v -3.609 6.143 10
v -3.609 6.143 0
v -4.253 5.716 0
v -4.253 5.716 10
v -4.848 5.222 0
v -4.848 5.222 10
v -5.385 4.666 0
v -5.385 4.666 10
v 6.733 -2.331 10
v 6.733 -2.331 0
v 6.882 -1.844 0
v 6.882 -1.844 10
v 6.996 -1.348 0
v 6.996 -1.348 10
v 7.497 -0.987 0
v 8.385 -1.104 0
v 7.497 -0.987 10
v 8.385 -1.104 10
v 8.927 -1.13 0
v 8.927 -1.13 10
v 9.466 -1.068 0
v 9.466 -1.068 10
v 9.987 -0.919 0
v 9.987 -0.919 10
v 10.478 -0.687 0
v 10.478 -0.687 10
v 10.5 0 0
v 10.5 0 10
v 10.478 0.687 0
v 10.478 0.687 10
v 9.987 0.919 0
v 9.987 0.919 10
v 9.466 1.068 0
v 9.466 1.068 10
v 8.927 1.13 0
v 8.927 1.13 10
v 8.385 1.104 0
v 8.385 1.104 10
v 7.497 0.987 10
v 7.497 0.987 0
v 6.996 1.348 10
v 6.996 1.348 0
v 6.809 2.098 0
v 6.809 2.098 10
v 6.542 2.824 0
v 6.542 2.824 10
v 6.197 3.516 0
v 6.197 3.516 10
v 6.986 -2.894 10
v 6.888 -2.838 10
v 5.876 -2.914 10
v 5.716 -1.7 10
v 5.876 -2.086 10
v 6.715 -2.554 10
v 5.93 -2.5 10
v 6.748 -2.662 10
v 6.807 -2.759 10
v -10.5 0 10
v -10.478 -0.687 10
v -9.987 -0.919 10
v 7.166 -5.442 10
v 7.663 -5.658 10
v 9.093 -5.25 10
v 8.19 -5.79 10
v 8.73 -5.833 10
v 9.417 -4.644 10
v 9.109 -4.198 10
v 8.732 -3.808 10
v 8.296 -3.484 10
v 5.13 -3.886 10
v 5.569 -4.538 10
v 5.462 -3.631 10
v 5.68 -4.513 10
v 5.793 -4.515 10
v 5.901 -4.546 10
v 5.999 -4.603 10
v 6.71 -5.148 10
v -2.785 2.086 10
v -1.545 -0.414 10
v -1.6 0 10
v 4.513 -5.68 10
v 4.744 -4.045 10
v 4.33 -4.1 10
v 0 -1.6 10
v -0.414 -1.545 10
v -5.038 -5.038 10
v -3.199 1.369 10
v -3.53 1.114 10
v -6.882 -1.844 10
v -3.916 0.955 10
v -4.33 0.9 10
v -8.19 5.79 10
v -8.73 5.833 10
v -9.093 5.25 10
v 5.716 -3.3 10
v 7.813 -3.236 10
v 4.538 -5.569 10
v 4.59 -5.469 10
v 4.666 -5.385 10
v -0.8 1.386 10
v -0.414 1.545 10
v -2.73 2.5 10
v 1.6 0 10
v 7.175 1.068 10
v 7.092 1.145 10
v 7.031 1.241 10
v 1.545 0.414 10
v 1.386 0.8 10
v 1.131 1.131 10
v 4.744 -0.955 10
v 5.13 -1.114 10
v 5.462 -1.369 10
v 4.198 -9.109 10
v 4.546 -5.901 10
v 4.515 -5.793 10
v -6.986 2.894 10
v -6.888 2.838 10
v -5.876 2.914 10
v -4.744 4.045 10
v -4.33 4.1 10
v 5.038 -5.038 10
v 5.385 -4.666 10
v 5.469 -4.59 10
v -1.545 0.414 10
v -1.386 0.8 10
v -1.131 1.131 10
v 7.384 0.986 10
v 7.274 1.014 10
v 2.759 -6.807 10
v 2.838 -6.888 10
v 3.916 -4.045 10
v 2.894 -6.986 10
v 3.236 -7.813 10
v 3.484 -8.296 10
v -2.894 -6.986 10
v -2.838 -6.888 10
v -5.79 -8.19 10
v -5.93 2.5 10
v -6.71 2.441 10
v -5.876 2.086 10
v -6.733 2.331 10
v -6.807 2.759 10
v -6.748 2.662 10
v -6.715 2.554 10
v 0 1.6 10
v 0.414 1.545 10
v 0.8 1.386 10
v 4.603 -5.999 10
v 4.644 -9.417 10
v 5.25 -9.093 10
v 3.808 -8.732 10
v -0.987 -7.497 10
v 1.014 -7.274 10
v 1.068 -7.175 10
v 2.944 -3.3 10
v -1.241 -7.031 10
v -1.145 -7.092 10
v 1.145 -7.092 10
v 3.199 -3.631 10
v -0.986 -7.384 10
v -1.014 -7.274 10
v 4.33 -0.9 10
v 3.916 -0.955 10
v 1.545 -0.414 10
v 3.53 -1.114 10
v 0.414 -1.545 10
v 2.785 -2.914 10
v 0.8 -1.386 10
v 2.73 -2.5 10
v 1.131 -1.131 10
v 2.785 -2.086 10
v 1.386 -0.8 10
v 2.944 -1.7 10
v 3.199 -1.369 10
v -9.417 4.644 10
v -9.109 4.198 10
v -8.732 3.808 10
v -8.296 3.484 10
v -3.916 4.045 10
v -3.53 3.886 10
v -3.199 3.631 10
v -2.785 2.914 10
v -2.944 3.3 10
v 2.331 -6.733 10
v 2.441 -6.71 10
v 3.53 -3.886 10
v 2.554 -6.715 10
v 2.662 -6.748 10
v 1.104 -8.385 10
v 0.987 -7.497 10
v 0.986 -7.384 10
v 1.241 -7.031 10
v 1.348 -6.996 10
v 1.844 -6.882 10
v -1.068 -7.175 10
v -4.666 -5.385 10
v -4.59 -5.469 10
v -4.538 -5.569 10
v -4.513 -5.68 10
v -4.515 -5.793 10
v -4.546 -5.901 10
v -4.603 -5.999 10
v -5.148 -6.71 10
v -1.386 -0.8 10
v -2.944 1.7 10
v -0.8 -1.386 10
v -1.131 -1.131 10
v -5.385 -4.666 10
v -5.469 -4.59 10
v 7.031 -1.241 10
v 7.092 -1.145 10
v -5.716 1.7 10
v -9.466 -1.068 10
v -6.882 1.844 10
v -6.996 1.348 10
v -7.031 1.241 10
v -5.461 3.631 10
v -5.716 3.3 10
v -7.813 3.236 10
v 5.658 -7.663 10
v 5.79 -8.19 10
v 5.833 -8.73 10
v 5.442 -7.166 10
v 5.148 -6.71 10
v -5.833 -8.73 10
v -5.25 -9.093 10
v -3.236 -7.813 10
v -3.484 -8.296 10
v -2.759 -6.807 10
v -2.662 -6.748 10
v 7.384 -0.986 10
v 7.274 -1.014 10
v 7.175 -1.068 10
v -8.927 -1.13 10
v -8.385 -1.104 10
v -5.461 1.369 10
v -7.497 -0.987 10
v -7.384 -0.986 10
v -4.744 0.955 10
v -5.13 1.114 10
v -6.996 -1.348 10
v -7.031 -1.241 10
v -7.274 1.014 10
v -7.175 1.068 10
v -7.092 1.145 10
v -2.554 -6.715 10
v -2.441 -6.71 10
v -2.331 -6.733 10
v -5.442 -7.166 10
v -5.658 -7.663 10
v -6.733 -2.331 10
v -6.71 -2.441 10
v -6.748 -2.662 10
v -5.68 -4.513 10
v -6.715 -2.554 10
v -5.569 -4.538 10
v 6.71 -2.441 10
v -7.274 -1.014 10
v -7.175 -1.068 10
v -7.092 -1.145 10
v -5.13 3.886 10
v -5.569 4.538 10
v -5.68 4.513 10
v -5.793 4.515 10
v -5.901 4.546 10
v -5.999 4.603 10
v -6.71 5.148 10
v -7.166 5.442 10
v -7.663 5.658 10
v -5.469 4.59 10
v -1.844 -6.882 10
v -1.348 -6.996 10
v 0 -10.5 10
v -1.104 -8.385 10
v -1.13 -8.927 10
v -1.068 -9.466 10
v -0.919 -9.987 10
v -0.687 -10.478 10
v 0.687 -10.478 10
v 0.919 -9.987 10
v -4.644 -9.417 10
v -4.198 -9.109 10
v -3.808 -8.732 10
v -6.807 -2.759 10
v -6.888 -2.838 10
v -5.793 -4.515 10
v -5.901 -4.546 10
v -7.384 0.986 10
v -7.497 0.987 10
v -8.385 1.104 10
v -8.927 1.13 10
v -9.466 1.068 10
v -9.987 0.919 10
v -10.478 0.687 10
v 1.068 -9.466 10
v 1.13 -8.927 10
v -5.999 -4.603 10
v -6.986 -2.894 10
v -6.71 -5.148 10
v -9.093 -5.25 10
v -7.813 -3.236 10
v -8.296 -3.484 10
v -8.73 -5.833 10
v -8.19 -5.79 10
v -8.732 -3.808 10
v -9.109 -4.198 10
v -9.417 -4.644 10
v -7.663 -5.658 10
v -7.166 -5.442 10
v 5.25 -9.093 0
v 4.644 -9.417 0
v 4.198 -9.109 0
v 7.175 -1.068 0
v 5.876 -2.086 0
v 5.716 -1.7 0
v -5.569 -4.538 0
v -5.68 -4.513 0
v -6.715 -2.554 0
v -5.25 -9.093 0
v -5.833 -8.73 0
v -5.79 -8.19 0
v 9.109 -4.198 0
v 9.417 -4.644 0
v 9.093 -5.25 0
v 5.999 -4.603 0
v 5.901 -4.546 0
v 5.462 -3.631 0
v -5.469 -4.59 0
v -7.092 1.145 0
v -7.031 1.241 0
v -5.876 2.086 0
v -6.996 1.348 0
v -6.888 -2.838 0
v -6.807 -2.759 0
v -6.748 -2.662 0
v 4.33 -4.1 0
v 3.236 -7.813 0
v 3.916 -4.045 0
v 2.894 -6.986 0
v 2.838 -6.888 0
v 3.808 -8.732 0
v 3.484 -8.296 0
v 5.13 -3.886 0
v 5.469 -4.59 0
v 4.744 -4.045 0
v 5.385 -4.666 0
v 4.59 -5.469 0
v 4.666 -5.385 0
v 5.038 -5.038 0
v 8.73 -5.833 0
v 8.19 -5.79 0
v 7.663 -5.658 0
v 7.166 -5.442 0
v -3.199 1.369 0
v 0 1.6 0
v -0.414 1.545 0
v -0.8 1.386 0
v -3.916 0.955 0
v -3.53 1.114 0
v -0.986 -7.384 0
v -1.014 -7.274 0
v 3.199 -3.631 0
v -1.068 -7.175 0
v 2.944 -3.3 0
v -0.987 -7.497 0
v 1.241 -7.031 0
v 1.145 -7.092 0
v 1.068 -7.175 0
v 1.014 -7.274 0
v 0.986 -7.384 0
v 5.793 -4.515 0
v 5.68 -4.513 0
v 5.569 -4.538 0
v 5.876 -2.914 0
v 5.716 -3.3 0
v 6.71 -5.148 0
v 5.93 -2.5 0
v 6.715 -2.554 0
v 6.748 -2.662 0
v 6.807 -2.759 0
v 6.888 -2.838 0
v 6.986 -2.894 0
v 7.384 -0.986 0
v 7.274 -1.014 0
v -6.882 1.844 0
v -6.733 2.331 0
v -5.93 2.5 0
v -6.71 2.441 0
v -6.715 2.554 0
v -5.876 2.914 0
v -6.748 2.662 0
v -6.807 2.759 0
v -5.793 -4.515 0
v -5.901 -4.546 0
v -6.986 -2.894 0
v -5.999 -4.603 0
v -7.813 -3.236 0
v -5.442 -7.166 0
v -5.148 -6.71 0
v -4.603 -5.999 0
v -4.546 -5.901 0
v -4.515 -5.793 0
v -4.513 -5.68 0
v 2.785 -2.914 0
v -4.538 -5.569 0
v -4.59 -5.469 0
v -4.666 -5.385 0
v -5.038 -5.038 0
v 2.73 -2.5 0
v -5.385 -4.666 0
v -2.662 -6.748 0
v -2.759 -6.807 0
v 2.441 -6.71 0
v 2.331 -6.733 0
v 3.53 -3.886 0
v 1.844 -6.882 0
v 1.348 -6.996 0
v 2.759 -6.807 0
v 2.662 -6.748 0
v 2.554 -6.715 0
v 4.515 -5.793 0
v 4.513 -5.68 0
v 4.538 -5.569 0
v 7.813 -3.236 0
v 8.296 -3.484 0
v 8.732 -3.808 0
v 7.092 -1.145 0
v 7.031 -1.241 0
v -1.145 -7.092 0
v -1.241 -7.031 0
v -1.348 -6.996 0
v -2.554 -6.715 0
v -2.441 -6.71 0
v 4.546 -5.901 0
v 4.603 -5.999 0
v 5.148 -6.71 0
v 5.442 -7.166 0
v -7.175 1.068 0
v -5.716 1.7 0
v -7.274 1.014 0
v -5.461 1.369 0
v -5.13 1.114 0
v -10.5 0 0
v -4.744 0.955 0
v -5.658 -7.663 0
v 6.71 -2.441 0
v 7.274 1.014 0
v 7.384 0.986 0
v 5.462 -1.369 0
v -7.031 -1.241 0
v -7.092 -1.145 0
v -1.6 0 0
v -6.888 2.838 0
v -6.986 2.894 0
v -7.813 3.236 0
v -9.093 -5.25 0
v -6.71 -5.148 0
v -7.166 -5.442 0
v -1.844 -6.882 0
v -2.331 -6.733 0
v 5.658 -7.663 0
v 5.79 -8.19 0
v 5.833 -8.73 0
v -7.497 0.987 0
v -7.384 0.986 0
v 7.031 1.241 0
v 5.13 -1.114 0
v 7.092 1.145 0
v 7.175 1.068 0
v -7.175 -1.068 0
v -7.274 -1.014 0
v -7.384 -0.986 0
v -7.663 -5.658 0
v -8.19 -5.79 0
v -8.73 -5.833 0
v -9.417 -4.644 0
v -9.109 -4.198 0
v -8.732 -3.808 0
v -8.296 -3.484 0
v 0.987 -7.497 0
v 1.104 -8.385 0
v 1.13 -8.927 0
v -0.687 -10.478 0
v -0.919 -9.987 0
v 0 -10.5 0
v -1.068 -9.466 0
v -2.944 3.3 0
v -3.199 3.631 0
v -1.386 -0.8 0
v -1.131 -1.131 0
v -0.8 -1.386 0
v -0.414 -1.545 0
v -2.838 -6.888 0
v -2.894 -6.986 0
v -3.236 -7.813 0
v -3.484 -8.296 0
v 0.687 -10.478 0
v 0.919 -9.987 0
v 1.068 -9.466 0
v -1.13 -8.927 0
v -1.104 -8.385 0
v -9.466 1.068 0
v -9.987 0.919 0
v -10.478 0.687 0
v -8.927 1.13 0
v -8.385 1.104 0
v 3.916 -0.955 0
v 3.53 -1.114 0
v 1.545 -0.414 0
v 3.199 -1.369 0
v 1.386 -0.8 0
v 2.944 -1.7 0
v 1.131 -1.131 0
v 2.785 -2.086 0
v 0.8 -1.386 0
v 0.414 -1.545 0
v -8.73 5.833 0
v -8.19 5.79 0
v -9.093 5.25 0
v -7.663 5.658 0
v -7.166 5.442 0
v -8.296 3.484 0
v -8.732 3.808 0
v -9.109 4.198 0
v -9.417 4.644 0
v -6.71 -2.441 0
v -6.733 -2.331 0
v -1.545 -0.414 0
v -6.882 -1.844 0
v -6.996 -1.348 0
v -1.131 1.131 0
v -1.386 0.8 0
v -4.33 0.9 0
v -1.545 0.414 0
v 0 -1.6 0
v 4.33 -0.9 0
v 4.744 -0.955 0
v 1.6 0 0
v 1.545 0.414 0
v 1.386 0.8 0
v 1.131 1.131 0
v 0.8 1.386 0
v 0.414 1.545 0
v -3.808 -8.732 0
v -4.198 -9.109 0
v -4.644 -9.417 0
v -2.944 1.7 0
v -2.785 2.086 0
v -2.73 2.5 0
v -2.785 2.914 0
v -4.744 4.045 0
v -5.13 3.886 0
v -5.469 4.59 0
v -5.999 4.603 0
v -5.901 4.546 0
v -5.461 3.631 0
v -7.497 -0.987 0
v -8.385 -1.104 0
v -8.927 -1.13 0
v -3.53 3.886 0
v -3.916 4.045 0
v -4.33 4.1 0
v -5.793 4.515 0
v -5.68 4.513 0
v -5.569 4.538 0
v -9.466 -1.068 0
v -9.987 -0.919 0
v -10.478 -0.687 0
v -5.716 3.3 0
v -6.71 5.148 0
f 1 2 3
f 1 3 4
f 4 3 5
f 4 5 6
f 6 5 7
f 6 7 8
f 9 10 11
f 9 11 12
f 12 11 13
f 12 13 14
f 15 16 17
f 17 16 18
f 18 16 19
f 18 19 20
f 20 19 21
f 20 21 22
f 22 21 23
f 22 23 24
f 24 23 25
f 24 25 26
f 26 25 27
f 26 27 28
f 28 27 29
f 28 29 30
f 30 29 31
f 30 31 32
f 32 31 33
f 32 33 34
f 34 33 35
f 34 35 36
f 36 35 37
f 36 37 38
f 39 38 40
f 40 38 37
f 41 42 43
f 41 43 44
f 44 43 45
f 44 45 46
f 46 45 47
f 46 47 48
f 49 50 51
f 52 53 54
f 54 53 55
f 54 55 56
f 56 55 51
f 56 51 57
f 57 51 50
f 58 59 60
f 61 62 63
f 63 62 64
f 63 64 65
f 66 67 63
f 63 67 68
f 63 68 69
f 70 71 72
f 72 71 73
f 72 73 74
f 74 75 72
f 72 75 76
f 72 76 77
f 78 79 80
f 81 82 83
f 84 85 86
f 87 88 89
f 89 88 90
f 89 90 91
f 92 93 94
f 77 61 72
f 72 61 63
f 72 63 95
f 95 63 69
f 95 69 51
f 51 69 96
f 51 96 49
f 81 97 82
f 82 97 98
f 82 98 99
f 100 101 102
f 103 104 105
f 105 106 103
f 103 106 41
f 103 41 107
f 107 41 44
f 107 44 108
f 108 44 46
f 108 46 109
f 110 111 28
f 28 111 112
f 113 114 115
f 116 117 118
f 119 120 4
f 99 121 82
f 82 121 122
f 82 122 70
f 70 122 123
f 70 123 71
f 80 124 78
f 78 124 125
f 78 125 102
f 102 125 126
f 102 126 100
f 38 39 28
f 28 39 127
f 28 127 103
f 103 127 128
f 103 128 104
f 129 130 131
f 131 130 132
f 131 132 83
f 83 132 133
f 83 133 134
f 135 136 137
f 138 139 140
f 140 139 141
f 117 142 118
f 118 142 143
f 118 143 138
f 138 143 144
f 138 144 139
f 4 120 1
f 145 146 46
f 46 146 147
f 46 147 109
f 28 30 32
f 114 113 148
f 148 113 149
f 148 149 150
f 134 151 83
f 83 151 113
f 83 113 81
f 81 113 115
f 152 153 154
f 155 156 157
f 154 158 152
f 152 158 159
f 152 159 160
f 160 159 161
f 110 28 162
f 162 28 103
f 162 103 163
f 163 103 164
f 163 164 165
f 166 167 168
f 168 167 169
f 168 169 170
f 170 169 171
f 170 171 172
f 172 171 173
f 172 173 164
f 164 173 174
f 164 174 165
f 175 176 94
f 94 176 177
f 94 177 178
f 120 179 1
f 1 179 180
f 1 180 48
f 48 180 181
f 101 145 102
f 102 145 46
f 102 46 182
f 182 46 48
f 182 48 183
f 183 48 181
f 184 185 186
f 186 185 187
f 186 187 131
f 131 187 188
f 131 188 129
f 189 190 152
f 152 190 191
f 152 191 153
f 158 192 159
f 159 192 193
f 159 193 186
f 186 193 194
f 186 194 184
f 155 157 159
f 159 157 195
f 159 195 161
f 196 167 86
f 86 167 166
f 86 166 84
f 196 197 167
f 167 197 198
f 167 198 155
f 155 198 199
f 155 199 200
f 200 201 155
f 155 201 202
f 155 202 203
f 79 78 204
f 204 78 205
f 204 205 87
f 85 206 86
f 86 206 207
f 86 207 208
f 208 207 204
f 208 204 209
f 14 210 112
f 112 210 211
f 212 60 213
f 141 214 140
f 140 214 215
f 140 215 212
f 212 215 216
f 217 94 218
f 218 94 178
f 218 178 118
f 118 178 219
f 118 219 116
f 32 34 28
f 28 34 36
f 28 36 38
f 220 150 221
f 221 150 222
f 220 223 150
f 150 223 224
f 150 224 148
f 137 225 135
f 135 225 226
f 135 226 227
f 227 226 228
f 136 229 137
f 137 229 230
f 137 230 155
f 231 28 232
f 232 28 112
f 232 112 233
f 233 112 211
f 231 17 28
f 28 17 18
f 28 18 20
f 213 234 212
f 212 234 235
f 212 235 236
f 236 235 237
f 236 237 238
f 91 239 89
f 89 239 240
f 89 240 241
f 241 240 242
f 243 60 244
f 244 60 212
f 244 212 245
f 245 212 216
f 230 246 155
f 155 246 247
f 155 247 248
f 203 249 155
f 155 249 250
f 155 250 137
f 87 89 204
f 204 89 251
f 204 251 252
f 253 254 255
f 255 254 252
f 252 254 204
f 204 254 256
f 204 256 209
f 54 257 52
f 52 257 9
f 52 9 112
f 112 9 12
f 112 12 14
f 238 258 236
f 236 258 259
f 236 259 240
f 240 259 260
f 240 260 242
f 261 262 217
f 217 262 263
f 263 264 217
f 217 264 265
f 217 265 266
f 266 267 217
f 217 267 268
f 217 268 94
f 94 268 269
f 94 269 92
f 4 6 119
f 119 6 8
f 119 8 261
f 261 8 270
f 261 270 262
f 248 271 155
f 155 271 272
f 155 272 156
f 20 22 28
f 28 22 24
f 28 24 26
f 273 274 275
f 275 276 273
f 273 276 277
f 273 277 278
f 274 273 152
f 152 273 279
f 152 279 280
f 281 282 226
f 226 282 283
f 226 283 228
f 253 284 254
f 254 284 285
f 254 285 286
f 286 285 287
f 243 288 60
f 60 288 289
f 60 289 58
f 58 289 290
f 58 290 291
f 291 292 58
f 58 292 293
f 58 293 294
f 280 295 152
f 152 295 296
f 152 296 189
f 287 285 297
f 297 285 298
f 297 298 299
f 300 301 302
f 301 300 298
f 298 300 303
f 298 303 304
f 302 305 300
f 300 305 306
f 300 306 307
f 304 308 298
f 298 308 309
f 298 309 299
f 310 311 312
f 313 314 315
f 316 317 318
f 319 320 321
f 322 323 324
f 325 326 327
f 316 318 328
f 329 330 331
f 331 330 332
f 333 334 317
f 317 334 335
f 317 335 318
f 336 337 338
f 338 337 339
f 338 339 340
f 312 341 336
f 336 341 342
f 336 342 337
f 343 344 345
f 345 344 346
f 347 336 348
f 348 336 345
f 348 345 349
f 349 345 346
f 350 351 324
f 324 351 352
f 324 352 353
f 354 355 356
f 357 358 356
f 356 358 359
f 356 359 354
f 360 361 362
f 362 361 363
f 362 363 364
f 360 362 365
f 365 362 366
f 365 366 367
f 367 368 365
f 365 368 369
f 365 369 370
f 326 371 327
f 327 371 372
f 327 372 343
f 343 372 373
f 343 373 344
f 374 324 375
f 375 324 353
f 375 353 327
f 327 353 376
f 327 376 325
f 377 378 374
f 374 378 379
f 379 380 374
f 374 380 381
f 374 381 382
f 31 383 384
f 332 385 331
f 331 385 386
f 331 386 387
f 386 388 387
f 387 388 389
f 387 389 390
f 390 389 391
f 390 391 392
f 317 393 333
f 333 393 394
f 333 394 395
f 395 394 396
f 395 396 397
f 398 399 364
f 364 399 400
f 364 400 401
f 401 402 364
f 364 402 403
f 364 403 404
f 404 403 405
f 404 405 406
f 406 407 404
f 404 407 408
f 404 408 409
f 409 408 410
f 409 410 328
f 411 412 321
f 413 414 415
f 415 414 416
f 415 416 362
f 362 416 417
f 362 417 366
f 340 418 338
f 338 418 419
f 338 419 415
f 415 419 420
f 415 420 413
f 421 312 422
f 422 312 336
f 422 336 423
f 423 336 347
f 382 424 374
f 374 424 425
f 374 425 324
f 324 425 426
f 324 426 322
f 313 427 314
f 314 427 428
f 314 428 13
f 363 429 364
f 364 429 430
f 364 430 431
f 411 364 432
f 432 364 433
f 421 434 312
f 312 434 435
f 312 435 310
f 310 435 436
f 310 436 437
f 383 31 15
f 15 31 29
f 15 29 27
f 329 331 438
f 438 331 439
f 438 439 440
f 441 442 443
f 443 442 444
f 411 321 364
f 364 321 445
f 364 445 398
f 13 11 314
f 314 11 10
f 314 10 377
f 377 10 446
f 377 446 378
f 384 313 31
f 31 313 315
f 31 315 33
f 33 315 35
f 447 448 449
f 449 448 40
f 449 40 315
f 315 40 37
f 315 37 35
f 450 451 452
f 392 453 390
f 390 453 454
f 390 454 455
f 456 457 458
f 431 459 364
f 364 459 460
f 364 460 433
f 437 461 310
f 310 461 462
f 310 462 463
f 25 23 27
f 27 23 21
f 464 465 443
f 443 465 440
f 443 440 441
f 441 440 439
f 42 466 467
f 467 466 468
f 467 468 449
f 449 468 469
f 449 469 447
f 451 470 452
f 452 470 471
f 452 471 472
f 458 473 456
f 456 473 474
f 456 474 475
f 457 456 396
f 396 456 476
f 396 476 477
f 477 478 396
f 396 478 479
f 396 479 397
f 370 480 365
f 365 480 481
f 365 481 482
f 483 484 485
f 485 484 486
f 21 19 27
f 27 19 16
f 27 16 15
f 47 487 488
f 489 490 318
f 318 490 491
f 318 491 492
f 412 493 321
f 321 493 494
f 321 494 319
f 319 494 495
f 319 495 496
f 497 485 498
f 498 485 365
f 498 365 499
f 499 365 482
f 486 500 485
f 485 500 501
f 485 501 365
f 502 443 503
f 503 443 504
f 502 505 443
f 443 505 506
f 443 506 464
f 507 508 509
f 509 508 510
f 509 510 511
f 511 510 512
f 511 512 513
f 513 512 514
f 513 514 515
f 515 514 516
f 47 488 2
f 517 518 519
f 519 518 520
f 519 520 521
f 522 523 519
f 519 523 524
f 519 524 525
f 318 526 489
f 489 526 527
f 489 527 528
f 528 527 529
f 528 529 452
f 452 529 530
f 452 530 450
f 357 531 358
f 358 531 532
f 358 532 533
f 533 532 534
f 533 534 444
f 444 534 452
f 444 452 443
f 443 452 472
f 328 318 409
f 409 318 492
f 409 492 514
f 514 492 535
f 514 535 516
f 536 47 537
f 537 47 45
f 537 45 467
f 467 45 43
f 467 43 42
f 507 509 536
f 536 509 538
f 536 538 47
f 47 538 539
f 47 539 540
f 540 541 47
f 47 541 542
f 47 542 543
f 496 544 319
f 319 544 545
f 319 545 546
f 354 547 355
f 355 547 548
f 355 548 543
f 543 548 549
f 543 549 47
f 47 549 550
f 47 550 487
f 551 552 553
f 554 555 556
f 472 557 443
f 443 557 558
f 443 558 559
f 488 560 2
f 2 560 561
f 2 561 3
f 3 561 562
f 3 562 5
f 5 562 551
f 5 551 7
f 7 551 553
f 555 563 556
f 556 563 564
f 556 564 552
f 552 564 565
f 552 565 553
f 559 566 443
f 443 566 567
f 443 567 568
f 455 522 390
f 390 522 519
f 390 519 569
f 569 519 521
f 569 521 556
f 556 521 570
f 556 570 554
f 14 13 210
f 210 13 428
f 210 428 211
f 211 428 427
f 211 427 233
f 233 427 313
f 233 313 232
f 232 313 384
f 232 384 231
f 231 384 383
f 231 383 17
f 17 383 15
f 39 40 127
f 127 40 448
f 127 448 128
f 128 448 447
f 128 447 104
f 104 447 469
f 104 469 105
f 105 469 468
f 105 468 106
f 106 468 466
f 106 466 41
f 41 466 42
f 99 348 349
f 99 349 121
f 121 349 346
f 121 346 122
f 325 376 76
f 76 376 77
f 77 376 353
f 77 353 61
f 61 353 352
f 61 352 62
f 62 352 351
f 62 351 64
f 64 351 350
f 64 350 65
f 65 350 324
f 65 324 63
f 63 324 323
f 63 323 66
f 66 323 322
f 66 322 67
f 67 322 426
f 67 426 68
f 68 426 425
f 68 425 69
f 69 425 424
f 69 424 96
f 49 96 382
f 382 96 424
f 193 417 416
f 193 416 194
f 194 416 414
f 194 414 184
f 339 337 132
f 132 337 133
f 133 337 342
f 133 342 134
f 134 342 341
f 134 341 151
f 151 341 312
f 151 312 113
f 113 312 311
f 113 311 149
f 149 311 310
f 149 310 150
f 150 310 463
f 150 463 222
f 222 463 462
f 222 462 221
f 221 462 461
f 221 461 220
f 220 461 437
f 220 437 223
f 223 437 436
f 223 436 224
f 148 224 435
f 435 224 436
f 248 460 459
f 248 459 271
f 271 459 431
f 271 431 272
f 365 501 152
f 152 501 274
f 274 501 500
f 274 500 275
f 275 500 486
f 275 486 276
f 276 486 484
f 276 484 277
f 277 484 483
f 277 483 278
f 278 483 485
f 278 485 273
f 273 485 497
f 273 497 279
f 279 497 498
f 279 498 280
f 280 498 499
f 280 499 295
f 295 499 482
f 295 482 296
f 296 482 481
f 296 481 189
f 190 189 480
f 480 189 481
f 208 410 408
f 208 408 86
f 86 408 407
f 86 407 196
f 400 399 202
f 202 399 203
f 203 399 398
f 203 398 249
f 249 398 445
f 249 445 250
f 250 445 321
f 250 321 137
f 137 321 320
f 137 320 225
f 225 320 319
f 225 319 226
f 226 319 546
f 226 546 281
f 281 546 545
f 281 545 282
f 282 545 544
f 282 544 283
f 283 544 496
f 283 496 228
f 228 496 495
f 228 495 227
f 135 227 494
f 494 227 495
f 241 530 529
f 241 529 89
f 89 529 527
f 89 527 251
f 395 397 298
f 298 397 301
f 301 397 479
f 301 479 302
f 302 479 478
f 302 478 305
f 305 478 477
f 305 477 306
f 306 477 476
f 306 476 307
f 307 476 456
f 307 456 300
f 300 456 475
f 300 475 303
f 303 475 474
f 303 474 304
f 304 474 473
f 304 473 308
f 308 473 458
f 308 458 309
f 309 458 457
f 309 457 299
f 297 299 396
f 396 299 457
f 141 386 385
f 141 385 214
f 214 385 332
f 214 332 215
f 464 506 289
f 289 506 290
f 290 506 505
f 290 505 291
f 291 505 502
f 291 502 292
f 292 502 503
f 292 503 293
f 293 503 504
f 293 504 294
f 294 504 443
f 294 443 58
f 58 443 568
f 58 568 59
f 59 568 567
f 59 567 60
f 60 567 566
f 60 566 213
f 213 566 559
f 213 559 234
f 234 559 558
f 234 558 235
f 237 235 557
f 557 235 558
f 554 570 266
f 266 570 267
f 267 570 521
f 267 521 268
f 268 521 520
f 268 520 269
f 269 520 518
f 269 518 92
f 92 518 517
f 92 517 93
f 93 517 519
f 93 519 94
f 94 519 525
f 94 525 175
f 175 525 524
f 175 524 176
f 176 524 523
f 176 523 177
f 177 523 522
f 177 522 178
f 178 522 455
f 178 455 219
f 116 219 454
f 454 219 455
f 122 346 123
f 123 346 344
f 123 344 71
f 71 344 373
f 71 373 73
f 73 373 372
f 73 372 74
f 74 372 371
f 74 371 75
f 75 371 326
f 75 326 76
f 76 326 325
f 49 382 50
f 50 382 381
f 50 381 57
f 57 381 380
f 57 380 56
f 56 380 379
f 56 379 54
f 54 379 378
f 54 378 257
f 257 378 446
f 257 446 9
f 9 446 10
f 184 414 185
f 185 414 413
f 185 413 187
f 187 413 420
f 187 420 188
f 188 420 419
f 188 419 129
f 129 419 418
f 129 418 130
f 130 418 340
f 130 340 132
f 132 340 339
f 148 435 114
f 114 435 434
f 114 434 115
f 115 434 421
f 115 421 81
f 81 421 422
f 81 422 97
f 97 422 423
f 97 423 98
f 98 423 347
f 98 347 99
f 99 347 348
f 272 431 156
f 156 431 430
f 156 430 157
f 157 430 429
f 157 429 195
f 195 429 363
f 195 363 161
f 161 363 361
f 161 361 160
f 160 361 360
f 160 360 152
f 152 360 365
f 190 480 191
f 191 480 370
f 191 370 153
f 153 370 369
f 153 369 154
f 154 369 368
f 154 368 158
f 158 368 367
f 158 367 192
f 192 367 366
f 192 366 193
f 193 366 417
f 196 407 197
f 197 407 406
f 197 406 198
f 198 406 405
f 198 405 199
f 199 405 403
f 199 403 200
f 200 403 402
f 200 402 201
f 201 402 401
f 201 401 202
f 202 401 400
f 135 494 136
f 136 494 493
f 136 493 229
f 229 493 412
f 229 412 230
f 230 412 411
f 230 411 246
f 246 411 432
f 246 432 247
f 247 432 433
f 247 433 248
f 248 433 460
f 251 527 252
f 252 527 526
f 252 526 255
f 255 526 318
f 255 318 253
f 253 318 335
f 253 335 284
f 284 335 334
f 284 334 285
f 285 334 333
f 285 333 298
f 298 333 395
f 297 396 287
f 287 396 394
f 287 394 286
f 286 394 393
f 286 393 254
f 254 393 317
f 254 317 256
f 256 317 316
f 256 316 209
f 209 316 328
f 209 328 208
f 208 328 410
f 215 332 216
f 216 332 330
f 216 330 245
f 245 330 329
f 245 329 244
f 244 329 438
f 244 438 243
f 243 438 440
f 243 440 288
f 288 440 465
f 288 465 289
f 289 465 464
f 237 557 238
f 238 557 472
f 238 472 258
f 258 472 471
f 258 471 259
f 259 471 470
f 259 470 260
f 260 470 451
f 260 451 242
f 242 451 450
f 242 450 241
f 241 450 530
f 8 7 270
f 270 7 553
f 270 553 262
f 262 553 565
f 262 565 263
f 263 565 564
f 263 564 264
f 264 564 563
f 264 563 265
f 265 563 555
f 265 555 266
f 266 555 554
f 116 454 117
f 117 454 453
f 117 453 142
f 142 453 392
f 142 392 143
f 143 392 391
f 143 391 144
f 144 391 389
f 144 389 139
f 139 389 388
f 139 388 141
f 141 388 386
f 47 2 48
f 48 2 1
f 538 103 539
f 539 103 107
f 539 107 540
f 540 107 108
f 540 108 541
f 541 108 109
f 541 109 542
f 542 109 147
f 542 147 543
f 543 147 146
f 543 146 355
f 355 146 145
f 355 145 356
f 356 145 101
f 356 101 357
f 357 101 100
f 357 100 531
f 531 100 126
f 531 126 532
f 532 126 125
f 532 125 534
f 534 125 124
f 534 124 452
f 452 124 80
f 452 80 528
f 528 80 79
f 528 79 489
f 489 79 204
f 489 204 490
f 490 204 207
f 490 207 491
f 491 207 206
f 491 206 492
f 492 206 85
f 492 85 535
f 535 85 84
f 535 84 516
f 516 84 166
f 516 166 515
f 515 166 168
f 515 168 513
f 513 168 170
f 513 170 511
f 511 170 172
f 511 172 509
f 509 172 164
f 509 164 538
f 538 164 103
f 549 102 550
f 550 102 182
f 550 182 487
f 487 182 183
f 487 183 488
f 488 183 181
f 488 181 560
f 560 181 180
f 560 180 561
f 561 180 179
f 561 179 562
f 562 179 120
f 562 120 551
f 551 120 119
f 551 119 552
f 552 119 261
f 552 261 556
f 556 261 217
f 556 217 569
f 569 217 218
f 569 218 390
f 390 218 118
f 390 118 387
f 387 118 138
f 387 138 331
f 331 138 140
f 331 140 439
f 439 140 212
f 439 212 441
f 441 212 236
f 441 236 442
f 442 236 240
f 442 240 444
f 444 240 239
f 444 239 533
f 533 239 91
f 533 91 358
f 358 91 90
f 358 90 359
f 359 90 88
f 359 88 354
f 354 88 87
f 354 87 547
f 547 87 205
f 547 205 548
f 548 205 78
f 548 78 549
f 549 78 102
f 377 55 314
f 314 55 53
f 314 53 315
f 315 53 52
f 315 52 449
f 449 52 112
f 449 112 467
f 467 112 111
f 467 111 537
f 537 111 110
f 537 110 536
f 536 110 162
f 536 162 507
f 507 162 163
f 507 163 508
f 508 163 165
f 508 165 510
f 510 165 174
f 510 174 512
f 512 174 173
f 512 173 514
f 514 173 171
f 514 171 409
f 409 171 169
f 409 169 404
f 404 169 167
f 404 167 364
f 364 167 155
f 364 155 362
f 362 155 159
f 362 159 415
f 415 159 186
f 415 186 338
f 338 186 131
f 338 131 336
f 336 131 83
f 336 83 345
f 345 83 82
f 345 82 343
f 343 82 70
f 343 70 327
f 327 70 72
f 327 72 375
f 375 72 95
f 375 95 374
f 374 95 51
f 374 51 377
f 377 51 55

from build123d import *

# Parameters (mm, degrees)
BOSS_EXTRU_2_DEPTH                 = 10
CONG_1_R                           = 0.45
R_P_TITION_CIRCULAIRE1_COUNT       = 8
R_P_TITION_CIRCULAIRE1_ANGLE       = 210
CONG_1_OF_R_P_TITION_CIRCULAIRE1_R = 0.45
ESQUISSE5_R                        = 7.125
BOSS_EXTRU_4_DEPTH                 = 10
ENL_V_MAT_EXTRU_3_DEPTH            = 11
ESQUISSE3_R                        = 1.6
ENL_V_MAT_EXTRU_4_DEPTH            = 11
ESQUISSE8_R                        = 1.6
ENL_V_MAT_EXTRU_5_DEPTH            = 11


with BuildPart() as part:
    # Esquisse1 → Boss.-Extru.2 (new body)
    with BuildSketch(Plane.XY):
        with BuildLine():
            Line((0, 0), (6.882221512, 1.844085696))
            ThreePointArc((6.882221512, 1.844085696), (6.988095123, 1.390018544), (7.064044637, 0.92999912))
            Line((7.064044637, 0.92999912), (8.384880781, 1.103890497))
            ThreePointArc((8.384880781, 1.103890497), (9.465680859, 1.068283463), (10.477518694, 0.686732857))
            ThreePointArc((10.477518694, 0.686732857), (10.5, 0), (10.477518694, -0.686732857))
            ThreePointArc((10.477518694, -0.686732857), (9.465680859, -1.068283463), (8.384880781, -1.103890497))
            Line((8.384880781, -1.103890497), (7.064044637, -0.92999912))
            ThreePointArc((7.064044637, -0.92999912), (6.988095123, -1.390018544), (6.882221512, -1.844085696))
            Line((6.882221512, -1.844085696), (0, 0))
        make_face()
    boss_extru_2 = extrude(amount=BOSS_EXTRU_2_DEPTH)

    # Congé1
    cong_1_edges = [part.edges().sort_by_distance(p)[0] for p in [
        (7.064044637, 0.92999912, 5),
        (7.064044637, -0.92999912, 5),
    ]]
    fillet(cong_1_edges, radius=CONG_1_R)

    # Répétition circulaire1: Boss.-Extru.2 ×8 about axis
    r_p_tition_circulaire1_axis = Axis((0, 0, 0), (0, 0, -1))
    for i in range(1, R_P_TITION_CIRCULAIRE1_COUNT):
        add(boss_extru_2.rotate(r_p_tition_circulaire1_axis, i * R_P_TITION_CIRCULAIRE1_ANGLE / (R_P_TITION_CIRCULAIRE1_COUNT - 1)))

    # Congé1 of Répétition circulaire1
    cong_1_of_r_p_tition_circulaire1_edges = [part.edges().sort_by_distance(p)[0] for p in [
        (6.582641669, -2.726619456, 5),
        (5.65264255, -4.337425182, 5),
        (4.337425182, -5.65264255, 5),
        (2.726619456, -6.582641669, 5),
        (0.92999912, -7.064044637, 5),
        (-0.92999912, -7.064044637, 5),
        (-2.726619456, -6.582641669, 5),
        (-4.337425182, -5.65264255, 5),
        (-5.65264255, -4.337425182, 5),
        (-6.582641669, -2.726619456, 5),
        (-7.064044637, -0.92999912, 5),
        (-7.064044637, 0.92999912, 5),
        (-6.582641669, 2.726619456, 5),
        (-5.65264255, 4.337425182, 5),
    ]]
    fillet(cong_1_of_r_p_tition_circulaire1_edges, radius=CONG_1_OF_R_P_TITION_CIRCULAIRE1_R)

    # Esquisse5 → Boss.-Extru.4 (add, through all)
    with BuildSketch(Plane.XY.offset(10)):
        Circle(ESQUISSE5_R)
    extrude(amount=-BOSS_EXTRU_4_DEPTH)

    # Esquisse7 → Enlèv. mat.-Extru.3 (cut, through all)
    with BuildSketch(Plane.XY.offset(10)):
        with BuildLine():
            Line((-3.608929902, 6.143390755), (6.197120353, 3.515867508))
            ThreePointArc((6.197120353, 3.515867508), (1.844085696, 6.882221512), (-3.608929902, 6.143390755))
        make_face()
    extrude(amount=-ENL_V_MAT_EXTRU_3_DEPTH, mode=Mode.SUBTRACT)

    # Esquisse3 → Enlèv. mat.-Extru.4 (cut, through all)
    with BuildSketch(Plane.XY.offset(10)):
        Circle(ESQUISSE3_R)
    extrude(amount=-ENL_V_MAT_EXTRU_4_DEPTH, mode=Mode.SUBTRACT)

    # Esquisse8 → Enlèv. mat.-Extru.5 (cut, through all)
    with BuildSketch(Plane.XY.offset(10)):
        with Locations((-4.330127019, 2.5)):
            Circle(ESQUISSE8_R)
        with Locations((4.330127019, -2.5)):
            Circle(ESQUISSE8_R)
    extrude(amount=-ENL_V_MAT_EXTRU_5_DEPTH, mode=Mode.SUBTRACT)


solid = part.part
